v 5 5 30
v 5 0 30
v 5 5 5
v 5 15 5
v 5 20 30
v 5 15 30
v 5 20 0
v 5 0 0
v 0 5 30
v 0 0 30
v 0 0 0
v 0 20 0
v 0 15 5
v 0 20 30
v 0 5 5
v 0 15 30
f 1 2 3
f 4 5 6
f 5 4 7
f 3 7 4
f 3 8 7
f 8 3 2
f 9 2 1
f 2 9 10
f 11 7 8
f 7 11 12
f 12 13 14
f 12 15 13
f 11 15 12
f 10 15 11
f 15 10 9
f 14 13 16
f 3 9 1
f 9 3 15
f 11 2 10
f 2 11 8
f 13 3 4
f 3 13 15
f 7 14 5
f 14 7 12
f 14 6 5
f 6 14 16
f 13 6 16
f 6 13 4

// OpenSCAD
// Simple L-shaped hook for mounting
// width: thickness of the hook
// depth: horizontal reach from the mount
// height: vertical height of the hook
module hook(width=5, depth=20, height=30) {
    union() {
        // vertical base
        cube([width, width, height]);
        // horizontal arm
        translate([0, width, 0])
            cube([width, depth - width, width]);
        // vertical tip to hold items
        translate([0, depth - width, width])
            cube([width, width, height - width]);
    }
}

hook();
